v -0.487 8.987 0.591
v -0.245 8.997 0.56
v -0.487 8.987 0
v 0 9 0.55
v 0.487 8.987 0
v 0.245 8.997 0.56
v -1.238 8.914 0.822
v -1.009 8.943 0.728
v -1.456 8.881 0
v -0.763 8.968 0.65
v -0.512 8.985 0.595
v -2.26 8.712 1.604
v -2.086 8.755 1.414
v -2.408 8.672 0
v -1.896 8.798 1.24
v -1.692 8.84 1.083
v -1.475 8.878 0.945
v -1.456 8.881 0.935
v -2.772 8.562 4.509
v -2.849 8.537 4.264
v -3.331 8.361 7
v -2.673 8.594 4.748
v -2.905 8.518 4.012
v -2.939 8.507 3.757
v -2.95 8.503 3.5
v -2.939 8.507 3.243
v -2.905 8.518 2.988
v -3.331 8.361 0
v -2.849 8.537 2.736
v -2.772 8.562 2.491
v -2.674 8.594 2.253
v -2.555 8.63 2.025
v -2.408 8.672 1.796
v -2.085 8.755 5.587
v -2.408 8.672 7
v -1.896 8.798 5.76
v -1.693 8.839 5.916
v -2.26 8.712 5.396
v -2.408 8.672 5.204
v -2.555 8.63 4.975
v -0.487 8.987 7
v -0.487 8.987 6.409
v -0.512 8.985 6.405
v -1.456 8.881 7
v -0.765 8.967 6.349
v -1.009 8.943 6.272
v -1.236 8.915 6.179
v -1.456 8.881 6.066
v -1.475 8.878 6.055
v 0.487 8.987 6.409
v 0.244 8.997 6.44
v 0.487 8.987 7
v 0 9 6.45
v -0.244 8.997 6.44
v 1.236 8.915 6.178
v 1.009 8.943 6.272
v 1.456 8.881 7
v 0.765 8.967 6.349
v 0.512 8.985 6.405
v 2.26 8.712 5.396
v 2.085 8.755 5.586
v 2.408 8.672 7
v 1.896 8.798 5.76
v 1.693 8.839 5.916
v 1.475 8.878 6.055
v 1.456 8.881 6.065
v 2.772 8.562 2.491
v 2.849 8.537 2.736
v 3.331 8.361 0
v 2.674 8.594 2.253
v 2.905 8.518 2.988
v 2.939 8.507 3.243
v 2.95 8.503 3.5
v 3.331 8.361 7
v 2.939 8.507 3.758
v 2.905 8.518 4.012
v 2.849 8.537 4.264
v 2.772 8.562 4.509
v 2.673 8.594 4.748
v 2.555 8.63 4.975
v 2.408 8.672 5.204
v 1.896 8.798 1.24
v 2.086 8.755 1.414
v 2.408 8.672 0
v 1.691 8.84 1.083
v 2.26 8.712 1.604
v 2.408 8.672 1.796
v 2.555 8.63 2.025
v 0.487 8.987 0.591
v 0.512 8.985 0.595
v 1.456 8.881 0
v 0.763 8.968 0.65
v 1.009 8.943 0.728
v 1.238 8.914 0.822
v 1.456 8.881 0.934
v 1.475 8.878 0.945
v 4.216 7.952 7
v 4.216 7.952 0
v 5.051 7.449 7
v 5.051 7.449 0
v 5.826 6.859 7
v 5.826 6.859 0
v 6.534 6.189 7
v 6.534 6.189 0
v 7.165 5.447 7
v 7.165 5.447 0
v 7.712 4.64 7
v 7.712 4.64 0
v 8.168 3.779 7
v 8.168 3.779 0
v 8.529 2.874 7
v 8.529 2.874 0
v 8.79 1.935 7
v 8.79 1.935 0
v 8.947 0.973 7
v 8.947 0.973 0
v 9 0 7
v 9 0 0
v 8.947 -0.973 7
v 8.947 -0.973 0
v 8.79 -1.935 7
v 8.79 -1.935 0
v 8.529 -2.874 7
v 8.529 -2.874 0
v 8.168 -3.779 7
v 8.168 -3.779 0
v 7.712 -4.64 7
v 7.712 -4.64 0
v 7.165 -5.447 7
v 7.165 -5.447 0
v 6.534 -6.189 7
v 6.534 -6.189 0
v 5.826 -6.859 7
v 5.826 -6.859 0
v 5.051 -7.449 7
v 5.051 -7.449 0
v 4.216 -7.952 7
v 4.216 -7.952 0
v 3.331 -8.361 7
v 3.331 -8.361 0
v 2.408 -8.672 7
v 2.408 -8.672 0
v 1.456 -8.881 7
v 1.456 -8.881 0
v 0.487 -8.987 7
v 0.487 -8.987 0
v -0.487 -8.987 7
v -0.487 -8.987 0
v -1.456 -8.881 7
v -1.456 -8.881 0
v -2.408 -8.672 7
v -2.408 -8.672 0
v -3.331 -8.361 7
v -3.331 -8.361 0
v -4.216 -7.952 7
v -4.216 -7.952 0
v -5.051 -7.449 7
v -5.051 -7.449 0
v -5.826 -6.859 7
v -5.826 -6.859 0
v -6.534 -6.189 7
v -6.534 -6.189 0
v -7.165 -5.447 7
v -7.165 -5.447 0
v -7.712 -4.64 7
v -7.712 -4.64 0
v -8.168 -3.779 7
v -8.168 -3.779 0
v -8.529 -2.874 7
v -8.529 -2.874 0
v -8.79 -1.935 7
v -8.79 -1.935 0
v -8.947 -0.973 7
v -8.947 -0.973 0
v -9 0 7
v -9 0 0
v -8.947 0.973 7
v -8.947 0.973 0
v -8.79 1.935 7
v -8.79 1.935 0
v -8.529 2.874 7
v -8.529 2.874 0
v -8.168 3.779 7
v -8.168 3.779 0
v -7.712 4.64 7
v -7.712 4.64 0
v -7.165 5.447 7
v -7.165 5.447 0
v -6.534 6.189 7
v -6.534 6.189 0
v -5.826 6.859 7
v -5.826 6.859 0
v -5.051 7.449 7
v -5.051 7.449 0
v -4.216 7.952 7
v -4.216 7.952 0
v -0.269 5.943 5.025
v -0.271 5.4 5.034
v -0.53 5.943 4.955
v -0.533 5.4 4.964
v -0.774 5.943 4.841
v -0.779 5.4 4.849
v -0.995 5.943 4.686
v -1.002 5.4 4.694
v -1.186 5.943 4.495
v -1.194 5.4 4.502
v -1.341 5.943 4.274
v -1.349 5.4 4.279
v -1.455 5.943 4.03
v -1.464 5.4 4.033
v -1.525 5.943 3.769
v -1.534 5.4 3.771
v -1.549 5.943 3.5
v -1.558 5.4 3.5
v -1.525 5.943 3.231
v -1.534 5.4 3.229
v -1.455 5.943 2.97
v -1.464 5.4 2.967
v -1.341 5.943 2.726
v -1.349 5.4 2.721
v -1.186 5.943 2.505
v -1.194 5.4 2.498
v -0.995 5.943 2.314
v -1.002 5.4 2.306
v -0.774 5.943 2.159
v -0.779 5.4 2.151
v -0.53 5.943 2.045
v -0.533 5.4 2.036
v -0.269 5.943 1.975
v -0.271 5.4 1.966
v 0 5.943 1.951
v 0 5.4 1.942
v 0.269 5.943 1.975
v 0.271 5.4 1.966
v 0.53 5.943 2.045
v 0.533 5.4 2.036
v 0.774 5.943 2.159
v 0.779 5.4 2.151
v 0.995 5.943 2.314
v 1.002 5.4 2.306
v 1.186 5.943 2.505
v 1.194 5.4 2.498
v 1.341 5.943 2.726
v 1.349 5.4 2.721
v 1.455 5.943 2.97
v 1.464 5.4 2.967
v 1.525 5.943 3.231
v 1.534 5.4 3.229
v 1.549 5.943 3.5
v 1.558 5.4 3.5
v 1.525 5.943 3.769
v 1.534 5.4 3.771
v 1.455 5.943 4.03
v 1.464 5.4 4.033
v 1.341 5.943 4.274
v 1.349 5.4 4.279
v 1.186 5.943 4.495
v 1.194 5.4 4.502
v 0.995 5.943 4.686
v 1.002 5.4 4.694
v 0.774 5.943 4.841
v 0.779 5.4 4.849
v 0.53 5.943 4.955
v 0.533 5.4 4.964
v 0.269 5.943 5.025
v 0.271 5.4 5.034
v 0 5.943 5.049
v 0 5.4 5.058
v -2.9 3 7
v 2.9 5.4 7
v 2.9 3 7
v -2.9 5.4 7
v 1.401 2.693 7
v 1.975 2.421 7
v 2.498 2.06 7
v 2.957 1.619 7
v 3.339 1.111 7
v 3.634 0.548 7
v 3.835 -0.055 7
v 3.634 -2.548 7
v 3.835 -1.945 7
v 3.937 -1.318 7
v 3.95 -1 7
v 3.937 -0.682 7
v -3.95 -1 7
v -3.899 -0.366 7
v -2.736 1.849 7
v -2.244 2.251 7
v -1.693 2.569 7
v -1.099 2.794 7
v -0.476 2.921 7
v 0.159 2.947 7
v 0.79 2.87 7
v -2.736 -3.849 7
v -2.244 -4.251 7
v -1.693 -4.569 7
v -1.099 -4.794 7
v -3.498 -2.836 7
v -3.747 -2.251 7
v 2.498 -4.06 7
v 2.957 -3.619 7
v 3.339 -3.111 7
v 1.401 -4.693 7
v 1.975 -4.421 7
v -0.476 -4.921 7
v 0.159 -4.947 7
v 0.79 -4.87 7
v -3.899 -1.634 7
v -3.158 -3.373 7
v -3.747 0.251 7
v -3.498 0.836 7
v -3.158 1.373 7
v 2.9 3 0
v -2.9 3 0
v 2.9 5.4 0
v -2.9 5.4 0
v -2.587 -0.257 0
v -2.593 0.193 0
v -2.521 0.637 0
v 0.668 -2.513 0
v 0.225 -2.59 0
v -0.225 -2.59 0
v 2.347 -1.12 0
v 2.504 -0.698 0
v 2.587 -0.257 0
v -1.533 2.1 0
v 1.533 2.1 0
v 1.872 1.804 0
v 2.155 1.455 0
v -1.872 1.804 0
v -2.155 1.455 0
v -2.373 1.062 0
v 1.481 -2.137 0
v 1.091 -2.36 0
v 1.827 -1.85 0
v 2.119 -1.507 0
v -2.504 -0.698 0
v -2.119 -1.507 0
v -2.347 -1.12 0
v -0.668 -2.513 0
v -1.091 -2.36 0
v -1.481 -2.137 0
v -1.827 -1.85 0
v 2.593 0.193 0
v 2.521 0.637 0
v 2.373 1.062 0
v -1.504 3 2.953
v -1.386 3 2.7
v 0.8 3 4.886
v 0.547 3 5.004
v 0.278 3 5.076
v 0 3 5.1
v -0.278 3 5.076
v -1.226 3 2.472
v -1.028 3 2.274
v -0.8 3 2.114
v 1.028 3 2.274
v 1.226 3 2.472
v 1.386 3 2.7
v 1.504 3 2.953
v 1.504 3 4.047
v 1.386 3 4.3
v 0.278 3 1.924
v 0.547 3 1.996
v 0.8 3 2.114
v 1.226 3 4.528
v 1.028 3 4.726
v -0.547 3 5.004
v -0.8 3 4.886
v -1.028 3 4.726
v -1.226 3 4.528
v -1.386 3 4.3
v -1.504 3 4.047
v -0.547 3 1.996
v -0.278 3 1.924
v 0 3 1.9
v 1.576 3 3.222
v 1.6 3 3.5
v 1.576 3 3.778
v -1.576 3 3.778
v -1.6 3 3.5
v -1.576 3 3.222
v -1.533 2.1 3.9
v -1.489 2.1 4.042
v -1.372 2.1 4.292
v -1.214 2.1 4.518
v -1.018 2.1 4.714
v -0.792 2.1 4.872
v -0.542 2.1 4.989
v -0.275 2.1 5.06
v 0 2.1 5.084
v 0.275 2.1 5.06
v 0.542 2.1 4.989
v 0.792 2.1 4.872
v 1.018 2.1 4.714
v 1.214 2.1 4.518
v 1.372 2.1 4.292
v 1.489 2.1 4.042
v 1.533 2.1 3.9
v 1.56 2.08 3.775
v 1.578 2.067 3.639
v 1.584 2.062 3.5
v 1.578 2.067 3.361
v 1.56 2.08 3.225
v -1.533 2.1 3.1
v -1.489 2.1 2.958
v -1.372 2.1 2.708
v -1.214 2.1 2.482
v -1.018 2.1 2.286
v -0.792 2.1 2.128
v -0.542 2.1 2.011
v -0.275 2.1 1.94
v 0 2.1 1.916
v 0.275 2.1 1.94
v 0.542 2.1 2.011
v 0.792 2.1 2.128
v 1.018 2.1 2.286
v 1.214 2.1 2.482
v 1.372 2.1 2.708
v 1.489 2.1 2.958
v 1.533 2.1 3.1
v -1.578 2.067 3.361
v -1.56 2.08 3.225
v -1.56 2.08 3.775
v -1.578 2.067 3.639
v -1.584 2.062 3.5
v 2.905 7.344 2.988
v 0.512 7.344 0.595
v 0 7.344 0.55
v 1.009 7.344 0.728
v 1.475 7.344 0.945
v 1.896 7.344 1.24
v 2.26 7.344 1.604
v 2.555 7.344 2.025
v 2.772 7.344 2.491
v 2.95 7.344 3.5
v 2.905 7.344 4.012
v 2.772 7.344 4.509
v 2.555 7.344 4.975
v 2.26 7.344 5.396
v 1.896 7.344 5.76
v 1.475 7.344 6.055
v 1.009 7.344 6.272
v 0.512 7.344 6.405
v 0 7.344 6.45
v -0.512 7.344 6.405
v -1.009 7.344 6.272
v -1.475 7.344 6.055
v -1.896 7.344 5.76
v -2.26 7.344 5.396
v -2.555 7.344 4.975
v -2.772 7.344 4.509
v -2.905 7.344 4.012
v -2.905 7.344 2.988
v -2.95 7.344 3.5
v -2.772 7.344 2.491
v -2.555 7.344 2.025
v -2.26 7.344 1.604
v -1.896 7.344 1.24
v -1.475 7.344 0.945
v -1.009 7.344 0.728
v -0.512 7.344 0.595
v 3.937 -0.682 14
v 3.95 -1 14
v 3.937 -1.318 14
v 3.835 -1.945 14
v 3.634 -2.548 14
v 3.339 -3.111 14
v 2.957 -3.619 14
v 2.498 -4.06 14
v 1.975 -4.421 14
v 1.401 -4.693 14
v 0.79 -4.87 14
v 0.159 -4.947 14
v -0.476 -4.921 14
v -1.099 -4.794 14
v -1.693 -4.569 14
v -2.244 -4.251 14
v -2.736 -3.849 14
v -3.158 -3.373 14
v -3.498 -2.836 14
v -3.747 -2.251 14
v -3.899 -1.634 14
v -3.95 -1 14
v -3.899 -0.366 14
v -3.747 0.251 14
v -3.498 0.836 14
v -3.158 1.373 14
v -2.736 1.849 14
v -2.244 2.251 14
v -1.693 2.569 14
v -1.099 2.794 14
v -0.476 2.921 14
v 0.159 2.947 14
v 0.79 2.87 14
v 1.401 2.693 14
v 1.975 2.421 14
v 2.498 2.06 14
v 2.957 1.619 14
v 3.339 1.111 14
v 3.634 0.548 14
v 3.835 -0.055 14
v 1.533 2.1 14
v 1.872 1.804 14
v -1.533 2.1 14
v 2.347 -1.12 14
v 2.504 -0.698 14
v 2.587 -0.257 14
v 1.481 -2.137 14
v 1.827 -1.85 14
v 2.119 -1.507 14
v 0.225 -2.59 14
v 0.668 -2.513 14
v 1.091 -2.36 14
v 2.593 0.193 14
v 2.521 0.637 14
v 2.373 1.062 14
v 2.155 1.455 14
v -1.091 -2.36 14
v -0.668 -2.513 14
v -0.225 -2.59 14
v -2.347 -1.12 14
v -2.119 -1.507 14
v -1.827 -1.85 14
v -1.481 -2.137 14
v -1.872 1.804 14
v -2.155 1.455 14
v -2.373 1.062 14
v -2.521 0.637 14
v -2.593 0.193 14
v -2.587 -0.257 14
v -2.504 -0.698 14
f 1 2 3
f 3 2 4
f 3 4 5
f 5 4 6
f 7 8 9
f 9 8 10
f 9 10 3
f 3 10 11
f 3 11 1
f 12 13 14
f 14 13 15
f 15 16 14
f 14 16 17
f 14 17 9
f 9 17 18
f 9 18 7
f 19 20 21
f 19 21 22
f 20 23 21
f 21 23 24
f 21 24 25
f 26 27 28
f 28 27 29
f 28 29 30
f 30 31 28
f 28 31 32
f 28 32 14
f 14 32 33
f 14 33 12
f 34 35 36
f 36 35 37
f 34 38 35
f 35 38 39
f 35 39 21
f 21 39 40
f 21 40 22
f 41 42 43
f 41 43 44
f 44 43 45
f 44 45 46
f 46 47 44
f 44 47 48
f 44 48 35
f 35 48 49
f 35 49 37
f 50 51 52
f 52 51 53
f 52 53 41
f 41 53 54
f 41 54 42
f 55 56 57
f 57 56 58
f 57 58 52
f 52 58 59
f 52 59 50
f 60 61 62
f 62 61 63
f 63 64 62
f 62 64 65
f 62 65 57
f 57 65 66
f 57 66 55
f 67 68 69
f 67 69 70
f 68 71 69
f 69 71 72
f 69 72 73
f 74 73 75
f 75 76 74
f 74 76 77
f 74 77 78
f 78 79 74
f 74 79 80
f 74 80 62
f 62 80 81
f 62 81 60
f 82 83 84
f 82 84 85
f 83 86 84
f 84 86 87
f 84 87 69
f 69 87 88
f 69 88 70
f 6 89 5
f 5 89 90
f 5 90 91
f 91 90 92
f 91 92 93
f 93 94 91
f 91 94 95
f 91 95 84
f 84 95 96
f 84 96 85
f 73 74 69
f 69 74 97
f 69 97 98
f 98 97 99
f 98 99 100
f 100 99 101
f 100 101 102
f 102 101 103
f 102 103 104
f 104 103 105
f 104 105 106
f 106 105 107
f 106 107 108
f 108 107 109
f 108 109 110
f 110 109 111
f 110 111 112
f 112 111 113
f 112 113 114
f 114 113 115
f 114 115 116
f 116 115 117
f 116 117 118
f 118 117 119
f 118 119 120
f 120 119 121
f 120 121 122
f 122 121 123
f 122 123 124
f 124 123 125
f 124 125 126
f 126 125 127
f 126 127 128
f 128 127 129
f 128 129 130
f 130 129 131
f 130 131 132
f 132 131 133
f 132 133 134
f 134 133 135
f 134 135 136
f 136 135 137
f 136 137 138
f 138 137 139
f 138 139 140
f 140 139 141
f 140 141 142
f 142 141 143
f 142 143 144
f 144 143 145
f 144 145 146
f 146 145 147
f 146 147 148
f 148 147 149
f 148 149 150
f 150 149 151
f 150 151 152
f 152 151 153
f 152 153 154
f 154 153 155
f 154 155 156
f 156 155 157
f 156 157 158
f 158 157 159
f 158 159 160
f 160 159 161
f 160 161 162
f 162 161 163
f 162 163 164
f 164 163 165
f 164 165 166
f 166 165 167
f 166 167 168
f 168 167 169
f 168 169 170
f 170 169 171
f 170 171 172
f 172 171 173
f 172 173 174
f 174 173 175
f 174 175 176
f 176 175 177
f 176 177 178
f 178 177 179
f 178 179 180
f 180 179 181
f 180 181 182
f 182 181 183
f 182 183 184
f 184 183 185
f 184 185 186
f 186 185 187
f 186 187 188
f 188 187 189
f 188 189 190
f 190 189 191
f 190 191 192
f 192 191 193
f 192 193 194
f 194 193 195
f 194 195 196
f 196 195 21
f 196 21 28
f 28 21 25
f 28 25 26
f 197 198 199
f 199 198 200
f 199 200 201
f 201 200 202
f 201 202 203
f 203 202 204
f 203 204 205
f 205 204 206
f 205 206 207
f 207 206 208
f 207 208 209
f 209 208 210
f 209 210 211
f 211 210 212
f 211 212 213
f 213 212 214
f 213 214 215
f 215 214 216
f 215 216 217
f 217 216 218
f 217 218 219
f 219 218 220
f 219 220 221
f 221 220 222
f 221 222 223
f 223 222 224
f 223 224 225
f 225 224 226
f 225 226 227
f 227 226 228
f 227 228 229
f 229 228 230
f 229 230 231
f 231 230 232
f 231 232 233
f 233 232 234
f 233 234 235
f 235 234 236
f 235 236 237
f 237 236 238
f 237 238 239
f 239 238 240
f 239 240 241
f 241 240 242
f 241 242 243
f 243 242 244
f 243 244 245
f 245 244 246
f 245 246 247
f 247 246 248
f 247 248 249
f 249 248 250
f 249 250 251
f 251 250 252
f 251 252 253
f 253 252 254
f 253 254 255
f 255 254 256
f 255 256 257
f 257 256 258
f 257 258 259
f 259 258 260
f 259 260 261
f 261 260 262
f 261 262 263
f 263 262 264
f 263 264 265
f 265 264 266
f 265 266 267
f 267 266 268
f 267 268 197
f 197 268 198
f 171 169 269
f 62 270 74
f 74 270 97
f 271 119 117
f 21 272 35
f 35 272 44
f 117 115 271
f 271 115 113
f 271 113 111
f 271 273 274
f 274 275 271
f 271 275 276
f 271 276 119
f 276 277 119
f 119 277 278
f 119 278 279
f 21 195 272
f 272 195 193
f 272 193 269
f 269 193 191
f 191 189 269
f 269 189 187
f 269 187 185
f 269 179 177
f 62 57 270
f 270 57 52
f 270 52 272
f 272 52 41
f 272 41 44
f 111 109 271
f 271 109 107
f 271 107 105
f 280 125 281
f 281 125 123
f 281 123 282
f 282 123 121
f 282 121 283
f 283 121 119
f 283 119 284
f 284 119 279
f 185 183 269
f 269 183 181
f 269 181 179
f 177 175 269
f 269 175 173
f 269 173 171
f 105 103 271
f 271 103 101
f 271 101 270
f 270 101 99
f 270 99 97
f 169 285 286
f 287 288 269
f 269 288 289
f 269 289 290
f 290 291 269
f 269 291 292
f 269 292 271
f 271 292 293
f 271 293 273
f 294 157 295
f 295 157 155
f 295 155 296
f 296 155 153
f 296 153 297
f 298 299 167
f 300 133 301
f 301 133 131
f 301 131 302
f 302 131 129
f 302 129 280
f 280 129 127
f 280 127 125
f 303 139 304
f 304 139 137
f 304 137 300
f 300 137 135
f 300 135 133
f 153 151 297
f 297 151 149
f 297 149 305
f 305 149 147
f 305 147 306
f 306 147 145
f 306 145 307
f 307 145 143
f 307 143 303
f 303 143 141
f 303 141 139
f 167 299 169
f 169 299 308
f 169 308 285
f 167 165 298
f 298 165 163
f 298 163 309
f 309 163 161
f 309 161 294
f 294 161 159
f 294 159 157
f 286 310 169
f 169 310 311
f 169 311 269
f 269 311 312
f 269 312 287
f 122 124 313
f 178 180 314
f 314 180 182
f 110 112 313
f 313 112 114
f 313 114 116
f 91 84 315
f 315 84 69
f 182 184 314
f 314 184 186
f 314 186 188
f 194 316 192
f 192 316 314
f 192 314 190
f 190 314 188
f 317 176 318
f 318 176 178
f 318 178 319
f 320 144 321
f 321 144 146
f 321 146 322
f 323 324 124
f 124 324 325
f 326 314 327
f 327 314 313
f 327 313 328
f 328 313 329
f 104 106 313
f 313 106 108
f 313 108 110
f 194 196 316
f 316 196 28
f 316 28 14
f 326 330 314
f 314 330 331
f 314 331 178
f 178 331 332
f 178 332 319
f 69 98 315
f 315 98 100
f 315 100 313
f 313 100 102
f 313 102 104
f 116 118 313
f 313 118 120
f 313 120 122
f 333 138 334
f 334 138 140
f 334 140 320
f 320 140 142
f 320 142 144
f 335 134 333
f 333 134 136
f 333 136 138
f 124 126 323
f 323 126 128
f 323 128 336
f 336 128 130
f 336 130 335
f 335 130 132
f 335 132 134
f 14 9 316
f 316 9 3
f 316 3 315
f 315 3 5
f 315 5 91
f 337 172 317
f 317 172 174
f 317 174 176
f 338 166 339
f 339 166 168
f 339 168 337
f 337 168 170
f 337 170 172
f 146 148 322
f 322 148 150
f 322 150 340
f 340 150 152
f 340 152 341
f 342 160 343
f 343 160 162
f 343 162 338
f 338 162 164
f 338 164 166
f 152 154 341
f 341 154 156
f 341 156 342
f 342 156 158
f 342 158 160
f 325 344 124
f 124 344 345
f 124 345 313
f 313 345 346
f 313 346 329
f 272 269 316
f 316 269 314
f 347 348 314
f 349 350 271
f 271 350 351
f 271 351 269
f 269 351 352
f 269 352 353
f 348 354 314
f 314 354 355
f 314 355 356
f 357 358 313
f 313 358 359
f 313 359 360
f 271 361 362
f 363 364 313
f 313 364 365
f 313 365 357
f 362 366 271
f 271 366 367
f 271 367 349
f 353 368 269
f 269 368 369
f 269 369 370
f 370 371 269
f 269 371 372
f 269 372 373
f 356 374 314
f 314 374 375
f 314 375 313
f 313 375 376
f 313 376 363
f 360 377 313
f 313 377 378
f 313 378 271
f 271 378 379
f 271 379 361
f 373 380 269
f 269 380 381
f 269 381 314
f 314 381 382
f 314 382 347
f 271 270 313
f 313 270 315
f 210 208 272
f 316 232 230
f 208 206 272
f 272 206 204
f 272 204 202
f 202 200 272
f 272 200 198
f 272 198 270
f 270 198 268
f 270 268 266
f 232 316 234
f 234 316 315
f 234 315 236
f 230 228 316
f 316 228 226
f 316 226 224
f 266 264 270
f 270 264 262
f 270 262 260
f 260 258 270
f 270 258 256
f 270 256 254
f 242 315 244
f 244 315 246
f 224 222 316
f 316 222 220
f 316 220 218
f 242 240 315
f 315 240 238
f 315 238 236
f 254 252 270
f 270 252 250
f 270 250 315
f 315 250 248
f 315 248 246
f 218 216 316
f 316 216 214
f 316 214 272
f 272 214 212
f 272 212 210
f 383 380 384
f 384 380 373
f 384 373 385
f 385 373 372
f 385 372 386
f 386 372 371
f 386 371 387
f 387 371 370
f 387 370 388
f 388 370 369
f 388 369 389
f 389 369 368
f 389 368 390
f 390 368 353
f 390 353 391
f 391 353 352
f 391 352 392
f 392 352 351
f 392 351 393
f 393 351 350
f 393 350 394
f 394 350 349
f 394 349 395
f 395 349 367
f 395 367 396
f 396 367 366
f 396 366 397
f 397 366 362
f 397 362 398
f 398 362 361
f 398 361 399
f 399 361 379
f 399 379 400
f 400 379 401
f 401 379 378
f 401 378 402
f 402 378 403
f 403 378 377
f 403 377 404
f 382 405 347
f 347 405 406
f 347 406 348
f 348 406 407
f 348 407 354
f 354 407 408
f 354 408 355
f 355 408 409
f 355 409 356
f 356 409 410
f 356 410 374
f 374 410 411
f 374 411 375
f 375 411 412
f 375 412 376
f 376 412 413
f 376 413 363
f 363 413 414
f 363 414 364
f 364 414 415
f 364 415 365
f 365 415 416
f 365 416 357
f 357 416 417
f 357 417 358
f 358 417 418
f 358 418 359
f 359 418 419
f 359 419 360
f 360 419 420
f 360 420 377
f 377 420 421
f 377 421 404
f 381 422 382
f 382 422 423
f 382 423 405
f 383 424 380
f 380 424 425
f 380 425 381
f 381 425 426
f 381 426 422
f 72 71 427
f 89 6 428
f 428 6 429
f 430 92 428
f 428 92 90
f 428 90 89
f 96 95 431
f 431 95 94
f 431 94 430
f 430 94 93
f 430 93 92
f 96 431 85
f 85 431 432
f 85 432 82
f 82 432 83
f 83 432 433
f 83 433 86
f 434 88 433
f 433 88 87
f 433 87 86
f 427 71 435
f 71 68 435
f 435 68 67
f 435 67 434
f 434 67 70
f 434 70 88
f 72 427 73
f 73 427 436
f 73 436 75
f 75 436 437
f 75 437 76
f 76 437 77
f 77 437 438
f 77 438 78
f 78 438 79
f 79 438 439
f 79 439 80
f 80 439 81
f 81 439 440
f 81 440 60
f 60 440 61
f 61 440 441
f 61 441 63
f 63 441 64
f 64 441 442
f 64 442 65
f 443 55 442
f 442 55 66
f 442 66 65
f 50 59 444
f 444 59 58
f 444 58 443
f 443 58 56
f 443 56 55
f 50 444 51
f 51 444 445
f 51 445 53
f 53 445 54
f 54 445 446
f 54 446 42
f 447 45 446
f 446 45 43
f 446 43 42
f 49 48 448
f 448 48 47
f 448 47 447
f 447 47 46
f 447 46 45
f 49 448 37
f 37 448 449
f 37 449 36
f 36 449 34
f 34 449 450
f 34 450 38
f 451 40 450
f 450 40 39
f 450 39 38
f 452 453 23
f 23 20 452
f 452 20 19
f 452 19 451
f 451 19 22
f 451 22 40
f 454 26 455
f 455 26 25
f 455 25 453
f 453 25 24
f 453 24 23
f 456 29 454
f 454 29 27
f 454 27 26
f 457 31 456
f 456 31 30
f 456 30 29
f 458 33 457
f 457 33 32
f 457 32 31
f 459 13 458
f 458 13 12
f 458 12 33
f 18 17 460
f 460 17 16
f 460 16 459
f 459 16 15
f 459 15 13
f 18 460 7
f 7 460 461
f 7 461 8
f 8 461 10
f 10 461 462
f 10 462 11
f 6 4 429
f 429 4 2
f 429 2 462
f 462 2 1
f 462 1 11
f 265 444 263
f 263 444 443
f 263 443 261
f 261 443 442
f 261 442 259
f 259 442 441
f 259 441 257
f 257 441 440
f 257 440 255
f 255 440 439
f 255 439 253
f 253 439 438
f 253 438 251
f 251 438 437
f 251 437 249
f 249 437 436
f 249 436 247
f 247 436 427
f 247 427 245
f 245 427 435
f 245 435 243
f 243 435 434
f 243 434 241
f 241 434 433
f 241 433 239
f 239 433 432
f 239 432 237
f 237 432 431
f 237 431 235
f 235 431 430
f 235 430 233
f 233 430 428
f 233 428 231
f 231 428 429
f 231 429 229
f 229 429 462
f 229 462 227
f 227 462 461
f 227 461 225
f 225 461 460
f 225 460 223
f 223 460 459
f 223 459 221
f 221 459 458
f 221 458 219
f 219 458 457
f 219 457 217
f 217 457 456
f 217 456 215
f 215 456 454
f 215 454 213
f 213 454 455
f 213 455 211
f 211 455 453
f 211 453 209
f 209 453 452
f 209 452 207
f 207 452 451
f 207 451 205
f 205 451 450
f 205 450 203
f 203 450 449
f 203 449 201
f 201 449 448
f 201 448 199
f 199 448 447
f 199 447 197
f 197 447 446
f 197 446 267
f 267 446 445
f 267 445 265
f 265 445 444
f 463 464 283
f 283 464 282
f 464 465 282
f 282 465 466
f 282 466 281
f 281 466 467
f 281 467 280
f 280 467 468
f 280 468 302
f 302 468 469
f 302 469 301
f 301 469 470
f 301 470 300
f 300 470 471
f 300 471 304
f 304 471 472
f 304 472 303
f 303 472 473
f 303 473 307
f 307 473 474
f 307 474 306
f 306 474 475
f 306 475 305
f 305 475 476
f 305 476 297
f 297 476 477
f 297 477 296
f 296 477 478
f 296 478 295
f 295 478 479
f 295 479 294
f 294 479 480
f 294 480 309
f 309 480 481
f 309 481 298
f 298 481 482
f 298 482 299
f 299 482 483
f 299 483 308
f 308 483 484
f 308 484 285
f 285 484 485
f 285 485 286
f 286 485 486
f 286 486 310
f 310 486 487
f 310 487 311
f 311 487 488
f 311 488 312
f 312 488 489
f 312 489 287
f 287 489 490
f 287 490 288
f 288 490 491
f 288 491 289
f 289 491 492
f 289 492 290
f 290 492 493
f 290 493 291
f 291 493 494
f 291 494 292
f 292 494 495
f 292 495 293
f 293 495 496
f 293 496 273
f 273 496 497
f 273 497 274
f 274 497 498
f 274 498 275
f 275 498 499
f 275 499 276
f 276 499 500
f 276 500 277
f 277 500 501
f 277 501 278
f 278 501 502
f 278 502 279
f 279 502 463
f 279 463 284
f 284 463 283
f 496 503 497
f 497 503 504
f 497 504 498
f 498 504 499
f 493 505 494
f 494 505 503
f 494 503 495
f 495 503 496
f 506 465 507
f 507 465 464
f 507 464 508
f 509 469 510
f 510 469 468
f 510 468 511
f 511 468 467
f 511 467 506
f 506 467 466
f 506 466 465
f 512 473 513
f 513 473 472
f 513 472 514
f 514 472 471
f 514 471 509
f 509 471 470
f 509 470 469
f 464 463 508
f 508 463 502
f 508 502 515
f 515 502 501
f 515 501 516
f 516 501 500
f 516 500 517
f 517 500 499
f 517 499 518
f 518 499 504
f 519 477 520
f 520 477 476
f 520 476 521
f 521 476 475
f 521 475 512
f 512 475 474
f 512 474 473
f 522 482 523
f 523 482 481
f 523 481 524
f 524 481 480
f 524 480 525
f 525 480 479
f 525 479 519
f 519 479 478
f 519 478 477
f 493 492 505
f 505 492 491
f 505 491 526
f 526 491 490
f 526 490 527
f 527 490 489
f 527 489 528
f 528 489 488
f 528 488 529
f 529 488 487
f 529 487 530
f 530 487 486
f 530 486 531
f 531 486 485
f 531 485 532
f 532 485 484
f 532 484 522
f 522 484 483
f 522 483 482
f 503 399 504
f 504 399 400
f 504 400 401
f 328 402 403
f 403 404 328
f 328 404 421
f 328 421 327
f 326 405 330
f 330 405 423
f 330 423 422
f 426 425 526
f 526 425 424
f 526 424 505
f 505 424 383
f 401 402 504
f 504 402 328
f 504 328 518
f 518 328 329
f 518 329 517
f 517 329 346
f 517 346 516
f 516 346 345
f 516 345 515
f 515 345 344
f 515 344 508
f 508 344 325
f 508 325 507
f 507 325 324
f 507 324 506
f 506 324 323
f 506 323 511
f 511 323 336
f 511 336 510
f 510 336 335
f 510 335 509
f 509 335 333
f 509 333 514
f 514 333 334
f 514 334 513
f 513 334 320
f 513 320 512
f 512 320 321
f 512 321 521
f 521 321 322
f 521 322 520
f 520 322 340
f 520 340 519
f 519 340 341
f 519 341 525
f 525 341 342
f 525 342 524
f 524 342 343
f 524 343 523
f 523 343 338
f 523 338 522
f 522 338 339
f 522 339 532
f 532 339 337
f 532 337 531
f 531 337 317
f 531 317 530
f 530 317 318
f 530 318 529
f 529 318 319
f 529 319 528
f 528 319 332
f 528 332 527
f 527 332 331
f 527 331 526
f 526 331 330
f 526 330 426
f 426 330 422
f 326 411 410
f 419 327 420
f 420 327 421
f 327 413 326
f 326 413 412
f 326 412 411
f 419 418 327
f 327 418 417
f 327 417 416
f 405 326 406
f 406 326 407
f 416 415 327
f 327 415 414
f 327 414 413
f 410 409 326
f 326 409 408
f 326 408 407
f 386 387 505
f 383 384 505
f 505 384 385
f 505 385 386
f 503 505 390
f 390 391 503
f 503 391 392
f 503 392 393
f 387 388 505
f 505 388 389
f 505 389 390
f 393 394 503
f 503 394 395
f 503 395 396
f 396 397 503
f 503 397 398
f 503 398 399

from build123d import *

# Parameters (mm, degrees)
ESQUISSE1_R             = 9
BOSS_EXTRU_1_DEPTH      = 7
ESQUISSE2_W             = 5.8
ESQUISSE2_H             = 2.4
ENL_V_MAT_EXTRU_1_DEPTH = 15.525839046
ESQUISSE7_R             = 2.95
ENL_V_MAT_EXTRU_8_DEPTH = 21.802884576
CHANFREIN1_SIZE         = 2.5
CHANFREIN1_SIZE_2       = 2.457485256
ESQUISSE9_R             = 3.95
BOSS_EXTRU_2_DEPTH      = 7
ENL_V_MAT_EXTRU_9_DEPTH = 19.92088803


# Read off the part's stored shape, not the designer's step: Enlèv. mat.-Extru.2
with BuildPart() as part:
    # Esquisse1 → Boss.-Extru.1 (new body)
    with BuildSketch(Plane.XY):
        Circle(ESQUISSE1_R)
    extrude(amount=BOSS_EXTRU_1_DEPTH)

    # Esquisse2 → Enlèv. mat.-Extru.1 (cut, through all)
    with BuildSketch(Plane(origin=(0, 0, 0), x_dir=(-1, 0, 0), z_dir=(0, 0, -1))):
        with Locations((0, 4.2)):
            Rectangle(ESQUISSE2_W, ESQUISSE2_H)
    extrude(amount=-ENL_V_MAT_EXTRU_1_DEPTH, mode=Mode.SUBTRACT)

    # Enlèv. mat.-Extru.2 outline → Enlèv. mat.-Extru.2 (revolve, cut)
    with BuildSketch(Plane.XY.offset(3.5)):
        Polygon((0, 5.4), (1.558107844, 5.4), (1.49526864, 9.000055608), (0, 9.000055608), align=None)
        Polygon((1.6, 3), (0, 3), (0, 1), (1.56508987, 1), align=None)
    revolve(axis=Axis((0, 0, 3.5), (0, 1, 0)), mode=Mode.SUBTRACT)

    # Esquisse7 → Enlèv. mat.-Extru.8 (cut, through all)
    with BuildSketch(Plane(origin=(0, 8.4, 0), x_dir=(1, 0, 0), z_dir=(0, 1, 0))):
        with Locations(Location((0, -3.5, 0), (0, 0, 90))):
            Circle(ESQUISSE7_R)
    extrude(amount=ENL_V_MAT_EXTRU_8_DEPTH, mode=Mode.SUBTRACT)

    # Chanfrein1
    # the kernel refuses this chamfer: 2.5, 2.457485256 mm, written as the material it takes off along each edge
    with BuildSketch(Plane(origin=(0, 8.4, 3.5), x_dir=(1, 0, 0), z_dir=(0, 0, 1))) as chanfrein1_piece_1_section:
        Polygon((1.50574265 + CHANFREIN1_SIZE, 0), (1.50574265 + CHANFREIN1_SIZE_2 * 0.0174524063286, -CHANFREIN1_SIZE_2 * 0.999847695023), (1.50574265, 0), align=None)
    chanfrein1_piece_1 = revolve(axis=Axis((0, 8.4, 3.5), (0, 1, 0)), mode=Mode.PRIVATE)
    chanfrein1_piece_1 = chanfrein1_piece_1 & Plane(origin=(0, 6.666447792, 3.5), x_dir=(0, 0, -1), z_dir=(0, -1, 0)) * Cylinder(2.95, 17, mode=Mode.PRIVATE)
    add(chanfrein1_piece_1, mode=Mode.SUBTRACT)

    # Esquisse9 → Boss.-Extru.2 (add)
    with BuildSketch(Plane.XY.offset(7)):
        with Locations((0, -1)):
            Circle(ESQUISSE9_R)
    extrude(amount=BOSS_EXTRU_2_DEPTH)

    # Esquisse10 → Enlèv. mat.-Extru.9 (cut, through all)
    with BuildSketch(Plane(origin=(0, 0, 0), x_dir=(-1, 0, 0), z_dir=(0, 0, -1))):
        with BuildLine():
            Line((-1.532970972, 2.1), (1.532970972, 2.1))
            ThreePointArc((1.532970972, 2.1), (0, -2.6), (-1.532970972, 2.1))
        make_face()
    extrude(amount=-ENL_V_MAT_EXTRU_9_DEPTH, mode=Mode.SUBTRACT)


solid = part.part
